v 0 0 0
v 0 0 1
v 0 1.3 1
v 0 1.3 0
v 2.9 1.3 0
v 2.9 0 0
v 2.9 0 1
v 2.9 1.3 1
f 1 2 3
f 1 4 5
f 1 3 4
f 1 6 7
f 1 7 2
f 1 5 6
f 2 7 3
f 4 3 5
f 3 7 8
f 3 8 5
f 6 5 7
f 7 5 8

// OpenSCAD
/* Warning, this is a very basic generator with a lot of approximation 
input data : [SOT-23, CVX, 2.90x1.30mm, 3, , C, C04-00104C]
generated by com.zoubworld.electronics.cad.model3d.Basic
Date : Sun Feb 15 10:50:48 CET 2026
*/

//body
color("black")
translate([0,0,0])
cube([2.9,1.3,1.0], center=false);
